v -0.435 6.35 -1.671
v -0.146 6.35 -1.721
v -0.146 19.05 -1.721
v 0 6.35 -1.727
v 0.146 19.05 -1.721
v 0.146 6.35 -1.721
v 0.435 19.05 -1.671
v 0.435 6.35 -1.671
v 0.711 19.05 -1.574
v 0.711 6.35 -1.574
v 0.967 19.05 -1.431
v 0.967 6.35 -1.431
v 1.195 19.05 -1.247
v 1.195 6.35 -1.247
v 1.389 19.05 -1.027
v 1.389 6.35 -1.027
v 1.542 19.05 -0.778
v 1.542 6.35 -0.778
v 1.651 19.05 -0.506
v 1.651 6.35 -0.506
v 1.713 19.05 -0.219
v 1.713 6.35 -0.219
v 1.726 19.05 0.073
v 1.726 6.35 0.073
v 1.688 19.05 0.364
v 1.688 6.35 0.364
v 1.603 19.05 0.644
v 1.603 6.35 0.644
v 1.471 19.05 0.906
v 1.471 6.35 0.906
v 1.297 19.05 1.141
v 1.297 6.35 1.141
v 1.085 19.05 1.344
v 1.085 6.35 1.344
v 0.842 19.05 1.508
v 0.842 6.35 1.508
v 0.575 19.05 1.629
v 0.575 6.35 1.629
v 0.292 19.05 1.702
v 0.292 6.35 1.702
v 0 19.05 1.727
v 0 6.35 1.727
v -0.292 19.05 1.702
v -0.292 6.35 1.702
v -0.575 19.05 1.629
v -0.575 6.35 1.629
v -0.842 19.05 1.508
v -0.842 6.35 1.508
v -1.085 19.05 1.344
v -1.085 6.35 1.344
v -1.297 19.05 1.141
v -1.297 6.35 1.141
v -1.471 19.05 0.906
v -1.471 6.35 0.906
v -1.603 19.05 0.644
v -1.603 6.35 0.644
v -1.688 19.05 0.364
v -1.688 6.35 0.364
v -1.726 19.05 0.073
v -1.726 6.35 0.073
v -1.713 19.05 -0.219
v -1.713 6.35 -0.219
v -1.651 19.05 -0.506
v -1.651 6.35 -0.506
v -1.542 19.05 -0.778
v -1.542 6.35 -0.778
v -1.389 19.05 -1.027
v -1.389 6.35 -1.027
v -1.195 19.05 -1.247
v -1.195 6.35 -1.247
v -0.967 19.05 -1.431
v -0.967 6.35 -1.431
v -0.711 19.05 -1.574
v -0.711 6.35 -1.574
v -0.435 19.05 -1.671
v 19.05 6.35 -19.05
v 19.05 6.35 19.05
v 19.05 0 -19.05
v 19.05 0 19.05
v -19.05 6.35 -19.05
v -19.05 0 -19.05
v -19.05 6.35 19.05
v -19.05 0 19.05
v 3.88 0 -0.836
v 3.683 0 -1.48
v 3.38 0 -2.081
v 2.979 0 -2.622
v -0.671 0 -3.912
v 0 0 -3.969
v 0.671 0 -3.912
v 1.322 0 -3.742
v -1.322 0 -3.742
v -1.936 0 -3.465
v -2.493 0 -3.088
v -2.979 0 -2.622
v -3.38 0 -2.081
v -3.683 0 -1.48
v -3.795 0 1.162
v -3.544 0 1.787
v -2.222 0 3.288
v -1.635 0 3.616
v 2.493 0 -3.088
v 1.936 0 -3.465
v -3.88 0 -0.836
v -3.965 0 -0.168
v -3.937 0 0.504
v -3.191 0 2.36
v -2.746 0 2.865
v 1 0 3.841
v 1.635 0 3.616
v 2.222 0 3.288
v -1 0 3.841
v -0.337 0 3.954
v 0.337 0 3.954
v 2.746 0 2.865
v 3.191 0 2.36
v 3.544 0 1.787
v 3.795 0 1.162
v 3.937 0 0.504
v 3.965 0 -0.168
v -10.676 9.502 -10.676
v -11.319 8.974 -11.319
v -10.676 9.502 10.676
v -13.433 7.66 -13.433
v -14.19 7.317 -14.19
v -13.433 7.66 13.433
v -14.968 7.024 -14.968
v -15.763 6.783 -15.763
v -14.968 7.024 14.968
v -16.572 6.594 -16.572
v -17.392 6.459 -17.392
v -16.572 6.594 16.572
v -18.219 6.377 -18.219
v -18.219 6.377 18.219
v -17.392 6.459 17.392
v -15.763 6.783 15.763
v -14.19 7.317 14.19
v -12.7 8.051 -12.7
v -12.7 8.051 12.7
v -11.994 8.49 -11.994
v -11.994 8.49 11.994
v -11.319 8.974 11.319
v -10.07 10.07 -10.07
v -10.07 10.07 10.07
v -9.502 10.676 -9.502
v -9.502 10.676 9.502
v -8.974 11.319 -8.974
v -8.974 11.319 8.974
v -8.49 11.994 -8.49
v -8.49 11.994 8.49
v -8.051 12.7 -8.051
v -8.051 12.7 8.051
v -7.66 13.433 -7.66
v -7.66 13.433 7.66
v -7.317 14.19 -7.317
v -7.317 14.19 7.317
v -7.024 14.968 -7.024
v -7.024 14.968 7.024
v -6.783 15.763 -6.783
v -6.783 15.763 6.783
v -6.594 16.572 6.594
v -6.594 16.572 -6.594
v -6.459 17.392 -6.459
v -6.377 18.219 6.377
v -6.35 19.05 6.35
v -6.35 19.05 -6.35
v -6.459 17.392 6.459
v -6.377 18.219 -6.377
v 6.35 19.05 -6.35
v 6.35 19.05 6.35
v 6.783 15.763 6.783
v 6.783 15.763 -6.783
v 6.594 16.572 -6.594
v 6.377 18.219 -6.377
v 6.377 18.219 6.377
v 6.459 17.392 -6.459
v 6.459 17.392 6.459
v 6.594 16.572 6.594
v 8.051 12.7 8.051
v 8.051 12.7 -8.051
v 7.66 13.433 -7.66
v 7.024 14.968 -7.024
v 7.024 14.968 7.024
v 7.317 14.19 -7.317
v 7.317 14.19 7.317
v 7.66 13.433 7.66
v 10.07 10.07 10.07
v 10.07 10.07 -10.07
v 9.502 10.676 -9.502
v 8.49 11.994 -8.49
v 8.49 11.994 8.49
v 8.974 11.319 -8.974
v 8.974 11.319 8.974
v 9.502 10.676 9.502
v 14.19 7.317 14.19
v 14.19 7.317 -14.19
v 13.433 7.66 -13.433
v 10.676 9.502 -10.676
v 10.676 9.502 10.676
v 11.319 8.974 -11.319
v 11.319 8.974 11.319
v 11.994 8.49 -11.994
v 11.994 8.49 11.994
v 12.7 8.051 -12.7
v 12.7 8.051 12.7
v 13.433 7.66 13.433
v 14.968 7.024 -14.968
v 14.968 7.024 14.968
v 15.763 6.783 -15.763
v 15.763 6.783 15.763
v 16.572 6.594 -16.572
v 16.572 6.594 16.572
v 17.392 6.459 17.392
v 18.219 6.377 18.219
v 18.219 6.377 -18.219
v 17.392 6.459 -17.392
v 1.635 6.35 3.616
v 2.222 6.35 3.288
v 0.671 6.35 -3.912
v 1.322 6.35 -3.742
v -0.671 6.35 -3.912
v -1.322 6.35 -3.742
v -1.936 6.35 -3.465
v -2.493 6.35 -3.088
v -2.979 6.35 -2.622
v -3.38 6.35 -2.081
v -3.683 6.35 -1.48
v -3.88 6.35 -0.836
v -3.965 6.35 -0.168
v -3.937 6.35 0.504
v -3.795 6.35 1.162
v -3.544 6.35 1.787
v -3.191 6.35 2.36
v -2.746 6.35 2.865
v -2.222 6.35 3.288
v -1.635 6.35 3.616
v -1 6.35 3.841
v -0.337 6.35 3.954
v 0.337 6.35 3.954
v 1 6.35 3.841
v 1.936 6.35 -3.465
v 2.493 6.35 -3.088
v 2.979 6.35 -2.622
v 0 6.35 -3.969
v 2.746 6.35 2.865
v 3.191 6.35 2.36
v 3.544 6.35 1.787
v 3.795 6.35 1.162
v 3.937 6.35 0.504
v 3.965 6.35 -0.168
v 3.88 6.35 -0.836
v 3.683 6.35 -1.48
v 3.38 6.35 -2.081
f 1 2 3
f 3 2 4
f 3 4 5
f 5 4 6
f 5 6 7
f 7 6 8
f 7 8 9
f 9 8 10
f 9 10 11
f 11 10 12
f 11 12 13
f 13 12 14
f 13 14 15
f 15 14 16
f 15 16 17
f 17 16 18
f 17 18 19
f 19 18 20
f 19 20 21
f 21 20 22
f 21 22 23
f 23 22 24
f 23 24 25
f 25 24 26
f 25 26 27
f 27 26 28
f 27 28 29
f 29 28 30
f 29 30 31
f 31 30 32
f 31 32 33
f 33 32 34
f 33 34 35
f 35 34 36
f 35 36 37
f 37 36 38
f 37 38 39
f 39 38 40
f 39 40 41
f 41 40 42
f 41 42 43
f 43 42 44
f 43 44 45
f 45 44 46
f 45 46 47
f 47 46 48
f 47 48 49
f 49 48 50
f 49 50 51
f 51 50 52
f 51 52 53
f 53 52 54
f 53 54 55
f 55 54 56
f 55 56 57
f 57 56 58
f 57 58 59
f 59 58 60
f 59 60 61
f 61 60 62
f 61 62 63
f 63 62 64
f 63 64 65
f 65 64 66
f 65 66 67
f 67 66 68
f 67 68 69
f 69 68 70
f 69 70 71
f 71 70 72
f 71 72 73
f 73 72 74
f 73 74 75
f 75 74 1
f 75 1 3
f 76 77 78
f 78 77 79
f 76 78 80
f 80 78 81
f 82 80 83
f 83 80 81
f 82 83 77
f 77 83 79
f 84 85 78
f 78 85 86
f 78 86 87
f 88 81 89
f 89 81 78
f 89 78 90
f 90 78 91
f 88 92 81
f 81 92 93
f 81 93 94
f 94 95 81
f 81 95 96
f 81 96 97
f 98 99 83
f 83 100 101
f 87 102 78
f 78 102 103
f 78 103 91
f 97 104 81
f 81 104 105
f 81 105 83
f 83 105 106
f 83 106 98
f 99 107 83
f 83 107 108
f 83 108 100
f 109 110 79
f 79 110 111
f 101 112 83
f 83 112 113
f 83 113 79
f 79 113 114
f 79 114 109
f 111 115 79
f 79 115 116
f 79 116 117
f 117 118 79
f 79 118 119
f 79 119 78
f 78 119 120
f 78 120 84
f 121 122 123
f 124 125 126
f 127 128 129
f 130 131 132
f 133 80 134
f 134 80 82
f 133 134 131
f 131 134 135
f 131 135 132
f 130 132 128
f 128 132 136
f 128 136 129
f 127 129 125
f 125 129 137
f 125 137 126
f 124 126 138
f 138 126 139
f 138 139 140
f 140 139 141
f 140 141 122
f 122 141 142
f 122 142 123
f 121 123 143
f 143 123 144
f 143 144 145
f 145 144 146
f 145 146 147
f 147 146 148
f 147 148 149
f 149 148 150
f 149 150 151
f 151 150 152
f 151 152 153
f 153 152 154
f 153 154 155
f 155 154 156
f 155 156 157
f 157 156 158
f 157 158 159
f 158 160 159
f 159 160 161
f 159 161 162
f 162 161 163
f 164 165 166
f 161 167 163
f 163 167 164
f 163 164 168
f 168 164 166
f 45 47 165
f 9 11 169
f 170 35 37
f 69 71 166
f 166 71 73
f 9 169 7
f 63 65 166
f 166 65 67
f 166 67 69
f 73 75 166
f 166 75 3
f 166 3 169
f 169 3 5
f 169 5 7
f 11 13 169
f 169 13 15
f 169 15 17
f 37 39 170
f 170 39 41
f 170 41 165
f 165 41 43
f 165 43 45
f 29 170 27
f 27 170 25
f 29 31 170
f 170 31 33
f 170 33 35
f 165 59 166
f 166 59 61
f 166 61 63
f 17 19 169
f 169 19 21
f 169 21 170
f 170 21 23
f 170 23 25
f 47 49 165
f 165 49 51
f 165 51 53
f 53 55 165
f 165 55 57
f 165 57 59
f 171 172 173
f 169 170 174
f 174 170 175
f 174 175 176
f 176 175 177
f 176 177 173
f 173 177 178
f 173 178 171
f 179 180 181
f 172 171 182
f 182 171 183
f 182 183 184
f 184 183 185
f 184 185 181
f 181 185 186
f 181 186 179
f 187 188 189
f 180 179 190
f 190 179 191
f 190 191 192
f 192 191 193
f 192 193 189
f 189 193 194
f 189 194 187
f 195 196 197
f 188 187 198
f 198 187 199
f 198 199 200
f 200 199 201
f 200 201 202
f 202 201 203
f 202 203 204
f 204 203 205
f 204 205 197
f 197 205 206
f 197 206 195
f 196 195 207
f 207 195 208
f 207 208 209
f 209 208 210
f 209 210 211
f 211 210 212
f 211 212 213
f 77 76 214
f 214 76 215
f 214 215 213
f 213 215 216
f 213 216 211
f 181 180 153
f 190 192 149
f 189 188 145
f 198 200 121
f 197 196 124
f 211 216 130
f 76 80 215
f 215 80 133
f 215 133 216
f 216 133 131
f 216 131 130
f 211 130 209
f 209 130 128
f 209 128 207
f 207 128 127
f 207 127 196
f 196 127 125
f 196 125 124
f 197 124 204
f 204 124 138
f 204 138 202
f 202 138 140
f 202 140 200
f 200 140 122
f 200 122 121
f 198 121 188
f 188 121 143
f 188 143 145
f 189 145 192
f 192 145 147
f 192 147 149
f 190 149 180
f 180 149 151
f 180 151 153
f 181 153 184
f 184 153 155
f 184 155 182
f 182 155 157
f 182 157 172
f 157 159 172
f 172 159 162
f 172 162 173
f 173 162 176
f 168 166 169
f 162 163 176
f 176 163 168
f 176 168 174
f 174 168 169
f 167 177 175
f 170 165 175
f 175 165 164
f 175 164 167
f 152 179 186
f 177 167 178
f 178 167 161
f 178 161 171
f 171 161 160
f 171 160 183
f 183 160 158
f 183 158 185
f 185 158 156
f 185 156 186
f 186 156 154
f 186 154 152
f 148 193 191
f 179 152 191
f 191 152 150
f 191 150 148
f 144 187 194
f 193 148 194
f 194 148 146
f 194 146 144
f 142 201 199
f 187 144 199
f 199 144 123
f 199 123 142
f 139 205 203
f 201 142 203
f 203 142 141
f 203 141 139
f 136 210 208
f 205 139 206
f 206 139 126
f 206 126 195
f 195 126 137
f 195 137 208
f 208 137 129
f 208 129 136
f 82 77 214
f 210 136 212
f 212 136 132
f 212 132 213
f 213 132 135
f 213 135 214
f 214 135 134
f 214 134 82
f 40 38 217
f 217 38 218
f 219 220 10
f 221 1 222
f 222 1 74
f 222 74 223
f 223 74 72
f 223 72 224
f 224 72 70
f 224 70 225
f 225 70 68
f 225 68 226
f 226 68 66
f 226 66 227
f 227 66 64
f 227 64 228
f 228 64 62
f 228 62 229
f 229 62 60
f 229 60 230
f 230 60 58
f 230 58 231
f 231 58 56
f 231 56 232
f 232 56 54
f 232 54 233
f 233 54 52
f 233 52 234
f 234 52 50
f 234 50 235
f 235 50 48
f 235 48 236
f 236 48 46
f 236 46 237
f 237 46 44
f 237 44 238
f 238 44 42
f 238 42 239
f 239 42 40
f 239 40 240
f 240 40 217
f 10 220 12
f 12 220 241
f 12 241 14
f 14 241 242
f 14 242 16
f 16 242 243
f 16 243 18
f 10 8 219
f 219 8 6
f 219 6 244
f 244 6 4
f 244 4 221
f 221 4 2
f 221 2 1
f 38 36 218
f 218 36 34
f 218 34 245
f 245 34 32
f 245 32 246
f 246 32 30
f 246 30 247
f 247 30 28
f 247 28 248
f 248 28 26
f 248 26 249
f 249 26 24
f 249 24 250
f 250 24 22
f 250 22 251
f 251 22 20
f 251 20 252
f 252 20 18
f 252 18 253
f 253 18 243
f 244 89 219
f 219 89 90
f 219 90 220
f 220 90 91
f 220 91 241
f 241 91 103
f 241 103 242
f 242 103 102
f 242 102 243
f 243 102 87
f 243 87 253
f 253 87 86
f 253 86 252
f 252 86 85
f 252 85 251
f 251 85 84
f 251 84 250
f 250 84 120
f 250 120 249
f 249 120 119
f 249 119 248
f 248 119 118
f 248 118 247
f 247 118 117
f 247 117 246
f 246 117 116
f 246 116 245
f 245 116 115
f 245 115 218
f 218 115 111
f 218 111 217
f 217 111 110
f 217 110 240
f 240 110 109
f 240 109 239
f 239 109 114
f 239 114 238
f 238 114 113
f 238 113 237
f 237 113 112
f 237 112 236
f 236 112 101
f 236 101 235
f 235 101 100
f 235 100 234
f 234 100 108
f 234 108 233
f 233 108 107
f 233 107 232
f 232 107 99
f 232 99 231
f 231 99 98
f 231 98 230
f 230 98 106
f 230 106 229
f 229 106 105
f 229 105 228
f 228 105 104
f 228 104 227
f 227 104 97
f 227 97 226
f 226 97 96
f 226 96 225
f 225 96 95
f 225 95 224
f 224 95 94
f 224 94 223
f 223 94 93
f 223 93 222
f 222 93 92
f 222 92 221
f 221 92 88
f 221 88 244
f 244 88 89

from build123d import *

# Parameters (mm, degrees)
SKETCH1_W             = 38.1
SKETCH1_H             = 38.1
BOSS_EXTRUDE1_DEPTH   = 6.35
BOSS_EXTRUDE2_DEPTH   = 38.1
CUT_EXTRUDE1_DEPTH    = 39.1
F_4_CLEARANCE_HOLE1_D = 3.4544
SKETCH6_R             = 3.96875
CUT_EXTRUDE2_DEPTH    = 6.35


with BuildPart() as part:
    # Sketch1 → Boss-Extrude1 (new body)
    with BuildSketch(Plane(origin=(0, 0, 0), x_dir=(1, 0, 0), z_dir=(0, 1, 0))):
        Rectangle(SKETCH1_W, SKETCH1_H)
    extrude(amount=BOSS_EXTRUDE1_DEPTH)

    # Sketch2 → Boss-Extrude2 (add)
    with BuildSketch(Plane.XY.offset(19.05)):
        with BuildLine():
            Line((-19.05, 6.35), (19.05, 6.35))
            ThreePointArc((19.05, 6.35), (10.069743762, 10.06974368), (6.349999801, 19.049999801))
            Line((6.349999801, 19.049999801), (-6.350000199, 19.049999801))
            ThreePointArc((-6.350000199, 19.049999801), (-10.06974402, 10.069743821), (-19.05, 6.35))
        make_face()
    extrude(amount=-BOSS_EXTRUDE2_DEPTH)

    # Sketch3 → Cut-Extrude1 (cut, through all)
    with BuildSketch(Plane(origin=(19.05, 0, 0), x_dir=(0, 0, -1), z_dir=(1, 0, 0))):
        with BuildLine():
            Line((-19.05, 6.35), (-19.05, 19.049999801))
            Line((-19.05, 19.049999801), (-6.350000199, 19.049999801))
            ThreePointArc((-6.350000199, 19.049999801), (-10.06974402, 10.069743821), (-19.05, 6.35))
        make_face()
        with BuildLine():
            Line((19.05, 6.35), (19.05, 19.049999801))
            Line((19.05, 19.049999801), (6.350000199, 19.049999801))
            ThreePointArc((6.350000199, 19.049999801), (10.06974402, 10.069743821), (19.05, 6.35))
        make_face()
    extrude(amount=-CUT_EXTRUDE1_DEPTH, mode=Mode.SUBTRACT)

    # #4 Clearance Hole1 (through all)
    with Locations(Plane(origin=(0, 19.049999801, 0), x_dir=(1, 0, 0), z_dir=(0, 1, 0))):
        with Locations((0, 0)):
            Hole(F_4_CLEARANCE_HOLE1_D / 2)

    # Sketch6 → Cut-Extrude2 (cut)
    with BuildSketch(Plane.XZ):
        Circle(SKETCH6_R)
    extrude(amount=-CUT_EXTRUDE2_DEPTH, mode=Mode.SUBTRACT)


solid = part.part
